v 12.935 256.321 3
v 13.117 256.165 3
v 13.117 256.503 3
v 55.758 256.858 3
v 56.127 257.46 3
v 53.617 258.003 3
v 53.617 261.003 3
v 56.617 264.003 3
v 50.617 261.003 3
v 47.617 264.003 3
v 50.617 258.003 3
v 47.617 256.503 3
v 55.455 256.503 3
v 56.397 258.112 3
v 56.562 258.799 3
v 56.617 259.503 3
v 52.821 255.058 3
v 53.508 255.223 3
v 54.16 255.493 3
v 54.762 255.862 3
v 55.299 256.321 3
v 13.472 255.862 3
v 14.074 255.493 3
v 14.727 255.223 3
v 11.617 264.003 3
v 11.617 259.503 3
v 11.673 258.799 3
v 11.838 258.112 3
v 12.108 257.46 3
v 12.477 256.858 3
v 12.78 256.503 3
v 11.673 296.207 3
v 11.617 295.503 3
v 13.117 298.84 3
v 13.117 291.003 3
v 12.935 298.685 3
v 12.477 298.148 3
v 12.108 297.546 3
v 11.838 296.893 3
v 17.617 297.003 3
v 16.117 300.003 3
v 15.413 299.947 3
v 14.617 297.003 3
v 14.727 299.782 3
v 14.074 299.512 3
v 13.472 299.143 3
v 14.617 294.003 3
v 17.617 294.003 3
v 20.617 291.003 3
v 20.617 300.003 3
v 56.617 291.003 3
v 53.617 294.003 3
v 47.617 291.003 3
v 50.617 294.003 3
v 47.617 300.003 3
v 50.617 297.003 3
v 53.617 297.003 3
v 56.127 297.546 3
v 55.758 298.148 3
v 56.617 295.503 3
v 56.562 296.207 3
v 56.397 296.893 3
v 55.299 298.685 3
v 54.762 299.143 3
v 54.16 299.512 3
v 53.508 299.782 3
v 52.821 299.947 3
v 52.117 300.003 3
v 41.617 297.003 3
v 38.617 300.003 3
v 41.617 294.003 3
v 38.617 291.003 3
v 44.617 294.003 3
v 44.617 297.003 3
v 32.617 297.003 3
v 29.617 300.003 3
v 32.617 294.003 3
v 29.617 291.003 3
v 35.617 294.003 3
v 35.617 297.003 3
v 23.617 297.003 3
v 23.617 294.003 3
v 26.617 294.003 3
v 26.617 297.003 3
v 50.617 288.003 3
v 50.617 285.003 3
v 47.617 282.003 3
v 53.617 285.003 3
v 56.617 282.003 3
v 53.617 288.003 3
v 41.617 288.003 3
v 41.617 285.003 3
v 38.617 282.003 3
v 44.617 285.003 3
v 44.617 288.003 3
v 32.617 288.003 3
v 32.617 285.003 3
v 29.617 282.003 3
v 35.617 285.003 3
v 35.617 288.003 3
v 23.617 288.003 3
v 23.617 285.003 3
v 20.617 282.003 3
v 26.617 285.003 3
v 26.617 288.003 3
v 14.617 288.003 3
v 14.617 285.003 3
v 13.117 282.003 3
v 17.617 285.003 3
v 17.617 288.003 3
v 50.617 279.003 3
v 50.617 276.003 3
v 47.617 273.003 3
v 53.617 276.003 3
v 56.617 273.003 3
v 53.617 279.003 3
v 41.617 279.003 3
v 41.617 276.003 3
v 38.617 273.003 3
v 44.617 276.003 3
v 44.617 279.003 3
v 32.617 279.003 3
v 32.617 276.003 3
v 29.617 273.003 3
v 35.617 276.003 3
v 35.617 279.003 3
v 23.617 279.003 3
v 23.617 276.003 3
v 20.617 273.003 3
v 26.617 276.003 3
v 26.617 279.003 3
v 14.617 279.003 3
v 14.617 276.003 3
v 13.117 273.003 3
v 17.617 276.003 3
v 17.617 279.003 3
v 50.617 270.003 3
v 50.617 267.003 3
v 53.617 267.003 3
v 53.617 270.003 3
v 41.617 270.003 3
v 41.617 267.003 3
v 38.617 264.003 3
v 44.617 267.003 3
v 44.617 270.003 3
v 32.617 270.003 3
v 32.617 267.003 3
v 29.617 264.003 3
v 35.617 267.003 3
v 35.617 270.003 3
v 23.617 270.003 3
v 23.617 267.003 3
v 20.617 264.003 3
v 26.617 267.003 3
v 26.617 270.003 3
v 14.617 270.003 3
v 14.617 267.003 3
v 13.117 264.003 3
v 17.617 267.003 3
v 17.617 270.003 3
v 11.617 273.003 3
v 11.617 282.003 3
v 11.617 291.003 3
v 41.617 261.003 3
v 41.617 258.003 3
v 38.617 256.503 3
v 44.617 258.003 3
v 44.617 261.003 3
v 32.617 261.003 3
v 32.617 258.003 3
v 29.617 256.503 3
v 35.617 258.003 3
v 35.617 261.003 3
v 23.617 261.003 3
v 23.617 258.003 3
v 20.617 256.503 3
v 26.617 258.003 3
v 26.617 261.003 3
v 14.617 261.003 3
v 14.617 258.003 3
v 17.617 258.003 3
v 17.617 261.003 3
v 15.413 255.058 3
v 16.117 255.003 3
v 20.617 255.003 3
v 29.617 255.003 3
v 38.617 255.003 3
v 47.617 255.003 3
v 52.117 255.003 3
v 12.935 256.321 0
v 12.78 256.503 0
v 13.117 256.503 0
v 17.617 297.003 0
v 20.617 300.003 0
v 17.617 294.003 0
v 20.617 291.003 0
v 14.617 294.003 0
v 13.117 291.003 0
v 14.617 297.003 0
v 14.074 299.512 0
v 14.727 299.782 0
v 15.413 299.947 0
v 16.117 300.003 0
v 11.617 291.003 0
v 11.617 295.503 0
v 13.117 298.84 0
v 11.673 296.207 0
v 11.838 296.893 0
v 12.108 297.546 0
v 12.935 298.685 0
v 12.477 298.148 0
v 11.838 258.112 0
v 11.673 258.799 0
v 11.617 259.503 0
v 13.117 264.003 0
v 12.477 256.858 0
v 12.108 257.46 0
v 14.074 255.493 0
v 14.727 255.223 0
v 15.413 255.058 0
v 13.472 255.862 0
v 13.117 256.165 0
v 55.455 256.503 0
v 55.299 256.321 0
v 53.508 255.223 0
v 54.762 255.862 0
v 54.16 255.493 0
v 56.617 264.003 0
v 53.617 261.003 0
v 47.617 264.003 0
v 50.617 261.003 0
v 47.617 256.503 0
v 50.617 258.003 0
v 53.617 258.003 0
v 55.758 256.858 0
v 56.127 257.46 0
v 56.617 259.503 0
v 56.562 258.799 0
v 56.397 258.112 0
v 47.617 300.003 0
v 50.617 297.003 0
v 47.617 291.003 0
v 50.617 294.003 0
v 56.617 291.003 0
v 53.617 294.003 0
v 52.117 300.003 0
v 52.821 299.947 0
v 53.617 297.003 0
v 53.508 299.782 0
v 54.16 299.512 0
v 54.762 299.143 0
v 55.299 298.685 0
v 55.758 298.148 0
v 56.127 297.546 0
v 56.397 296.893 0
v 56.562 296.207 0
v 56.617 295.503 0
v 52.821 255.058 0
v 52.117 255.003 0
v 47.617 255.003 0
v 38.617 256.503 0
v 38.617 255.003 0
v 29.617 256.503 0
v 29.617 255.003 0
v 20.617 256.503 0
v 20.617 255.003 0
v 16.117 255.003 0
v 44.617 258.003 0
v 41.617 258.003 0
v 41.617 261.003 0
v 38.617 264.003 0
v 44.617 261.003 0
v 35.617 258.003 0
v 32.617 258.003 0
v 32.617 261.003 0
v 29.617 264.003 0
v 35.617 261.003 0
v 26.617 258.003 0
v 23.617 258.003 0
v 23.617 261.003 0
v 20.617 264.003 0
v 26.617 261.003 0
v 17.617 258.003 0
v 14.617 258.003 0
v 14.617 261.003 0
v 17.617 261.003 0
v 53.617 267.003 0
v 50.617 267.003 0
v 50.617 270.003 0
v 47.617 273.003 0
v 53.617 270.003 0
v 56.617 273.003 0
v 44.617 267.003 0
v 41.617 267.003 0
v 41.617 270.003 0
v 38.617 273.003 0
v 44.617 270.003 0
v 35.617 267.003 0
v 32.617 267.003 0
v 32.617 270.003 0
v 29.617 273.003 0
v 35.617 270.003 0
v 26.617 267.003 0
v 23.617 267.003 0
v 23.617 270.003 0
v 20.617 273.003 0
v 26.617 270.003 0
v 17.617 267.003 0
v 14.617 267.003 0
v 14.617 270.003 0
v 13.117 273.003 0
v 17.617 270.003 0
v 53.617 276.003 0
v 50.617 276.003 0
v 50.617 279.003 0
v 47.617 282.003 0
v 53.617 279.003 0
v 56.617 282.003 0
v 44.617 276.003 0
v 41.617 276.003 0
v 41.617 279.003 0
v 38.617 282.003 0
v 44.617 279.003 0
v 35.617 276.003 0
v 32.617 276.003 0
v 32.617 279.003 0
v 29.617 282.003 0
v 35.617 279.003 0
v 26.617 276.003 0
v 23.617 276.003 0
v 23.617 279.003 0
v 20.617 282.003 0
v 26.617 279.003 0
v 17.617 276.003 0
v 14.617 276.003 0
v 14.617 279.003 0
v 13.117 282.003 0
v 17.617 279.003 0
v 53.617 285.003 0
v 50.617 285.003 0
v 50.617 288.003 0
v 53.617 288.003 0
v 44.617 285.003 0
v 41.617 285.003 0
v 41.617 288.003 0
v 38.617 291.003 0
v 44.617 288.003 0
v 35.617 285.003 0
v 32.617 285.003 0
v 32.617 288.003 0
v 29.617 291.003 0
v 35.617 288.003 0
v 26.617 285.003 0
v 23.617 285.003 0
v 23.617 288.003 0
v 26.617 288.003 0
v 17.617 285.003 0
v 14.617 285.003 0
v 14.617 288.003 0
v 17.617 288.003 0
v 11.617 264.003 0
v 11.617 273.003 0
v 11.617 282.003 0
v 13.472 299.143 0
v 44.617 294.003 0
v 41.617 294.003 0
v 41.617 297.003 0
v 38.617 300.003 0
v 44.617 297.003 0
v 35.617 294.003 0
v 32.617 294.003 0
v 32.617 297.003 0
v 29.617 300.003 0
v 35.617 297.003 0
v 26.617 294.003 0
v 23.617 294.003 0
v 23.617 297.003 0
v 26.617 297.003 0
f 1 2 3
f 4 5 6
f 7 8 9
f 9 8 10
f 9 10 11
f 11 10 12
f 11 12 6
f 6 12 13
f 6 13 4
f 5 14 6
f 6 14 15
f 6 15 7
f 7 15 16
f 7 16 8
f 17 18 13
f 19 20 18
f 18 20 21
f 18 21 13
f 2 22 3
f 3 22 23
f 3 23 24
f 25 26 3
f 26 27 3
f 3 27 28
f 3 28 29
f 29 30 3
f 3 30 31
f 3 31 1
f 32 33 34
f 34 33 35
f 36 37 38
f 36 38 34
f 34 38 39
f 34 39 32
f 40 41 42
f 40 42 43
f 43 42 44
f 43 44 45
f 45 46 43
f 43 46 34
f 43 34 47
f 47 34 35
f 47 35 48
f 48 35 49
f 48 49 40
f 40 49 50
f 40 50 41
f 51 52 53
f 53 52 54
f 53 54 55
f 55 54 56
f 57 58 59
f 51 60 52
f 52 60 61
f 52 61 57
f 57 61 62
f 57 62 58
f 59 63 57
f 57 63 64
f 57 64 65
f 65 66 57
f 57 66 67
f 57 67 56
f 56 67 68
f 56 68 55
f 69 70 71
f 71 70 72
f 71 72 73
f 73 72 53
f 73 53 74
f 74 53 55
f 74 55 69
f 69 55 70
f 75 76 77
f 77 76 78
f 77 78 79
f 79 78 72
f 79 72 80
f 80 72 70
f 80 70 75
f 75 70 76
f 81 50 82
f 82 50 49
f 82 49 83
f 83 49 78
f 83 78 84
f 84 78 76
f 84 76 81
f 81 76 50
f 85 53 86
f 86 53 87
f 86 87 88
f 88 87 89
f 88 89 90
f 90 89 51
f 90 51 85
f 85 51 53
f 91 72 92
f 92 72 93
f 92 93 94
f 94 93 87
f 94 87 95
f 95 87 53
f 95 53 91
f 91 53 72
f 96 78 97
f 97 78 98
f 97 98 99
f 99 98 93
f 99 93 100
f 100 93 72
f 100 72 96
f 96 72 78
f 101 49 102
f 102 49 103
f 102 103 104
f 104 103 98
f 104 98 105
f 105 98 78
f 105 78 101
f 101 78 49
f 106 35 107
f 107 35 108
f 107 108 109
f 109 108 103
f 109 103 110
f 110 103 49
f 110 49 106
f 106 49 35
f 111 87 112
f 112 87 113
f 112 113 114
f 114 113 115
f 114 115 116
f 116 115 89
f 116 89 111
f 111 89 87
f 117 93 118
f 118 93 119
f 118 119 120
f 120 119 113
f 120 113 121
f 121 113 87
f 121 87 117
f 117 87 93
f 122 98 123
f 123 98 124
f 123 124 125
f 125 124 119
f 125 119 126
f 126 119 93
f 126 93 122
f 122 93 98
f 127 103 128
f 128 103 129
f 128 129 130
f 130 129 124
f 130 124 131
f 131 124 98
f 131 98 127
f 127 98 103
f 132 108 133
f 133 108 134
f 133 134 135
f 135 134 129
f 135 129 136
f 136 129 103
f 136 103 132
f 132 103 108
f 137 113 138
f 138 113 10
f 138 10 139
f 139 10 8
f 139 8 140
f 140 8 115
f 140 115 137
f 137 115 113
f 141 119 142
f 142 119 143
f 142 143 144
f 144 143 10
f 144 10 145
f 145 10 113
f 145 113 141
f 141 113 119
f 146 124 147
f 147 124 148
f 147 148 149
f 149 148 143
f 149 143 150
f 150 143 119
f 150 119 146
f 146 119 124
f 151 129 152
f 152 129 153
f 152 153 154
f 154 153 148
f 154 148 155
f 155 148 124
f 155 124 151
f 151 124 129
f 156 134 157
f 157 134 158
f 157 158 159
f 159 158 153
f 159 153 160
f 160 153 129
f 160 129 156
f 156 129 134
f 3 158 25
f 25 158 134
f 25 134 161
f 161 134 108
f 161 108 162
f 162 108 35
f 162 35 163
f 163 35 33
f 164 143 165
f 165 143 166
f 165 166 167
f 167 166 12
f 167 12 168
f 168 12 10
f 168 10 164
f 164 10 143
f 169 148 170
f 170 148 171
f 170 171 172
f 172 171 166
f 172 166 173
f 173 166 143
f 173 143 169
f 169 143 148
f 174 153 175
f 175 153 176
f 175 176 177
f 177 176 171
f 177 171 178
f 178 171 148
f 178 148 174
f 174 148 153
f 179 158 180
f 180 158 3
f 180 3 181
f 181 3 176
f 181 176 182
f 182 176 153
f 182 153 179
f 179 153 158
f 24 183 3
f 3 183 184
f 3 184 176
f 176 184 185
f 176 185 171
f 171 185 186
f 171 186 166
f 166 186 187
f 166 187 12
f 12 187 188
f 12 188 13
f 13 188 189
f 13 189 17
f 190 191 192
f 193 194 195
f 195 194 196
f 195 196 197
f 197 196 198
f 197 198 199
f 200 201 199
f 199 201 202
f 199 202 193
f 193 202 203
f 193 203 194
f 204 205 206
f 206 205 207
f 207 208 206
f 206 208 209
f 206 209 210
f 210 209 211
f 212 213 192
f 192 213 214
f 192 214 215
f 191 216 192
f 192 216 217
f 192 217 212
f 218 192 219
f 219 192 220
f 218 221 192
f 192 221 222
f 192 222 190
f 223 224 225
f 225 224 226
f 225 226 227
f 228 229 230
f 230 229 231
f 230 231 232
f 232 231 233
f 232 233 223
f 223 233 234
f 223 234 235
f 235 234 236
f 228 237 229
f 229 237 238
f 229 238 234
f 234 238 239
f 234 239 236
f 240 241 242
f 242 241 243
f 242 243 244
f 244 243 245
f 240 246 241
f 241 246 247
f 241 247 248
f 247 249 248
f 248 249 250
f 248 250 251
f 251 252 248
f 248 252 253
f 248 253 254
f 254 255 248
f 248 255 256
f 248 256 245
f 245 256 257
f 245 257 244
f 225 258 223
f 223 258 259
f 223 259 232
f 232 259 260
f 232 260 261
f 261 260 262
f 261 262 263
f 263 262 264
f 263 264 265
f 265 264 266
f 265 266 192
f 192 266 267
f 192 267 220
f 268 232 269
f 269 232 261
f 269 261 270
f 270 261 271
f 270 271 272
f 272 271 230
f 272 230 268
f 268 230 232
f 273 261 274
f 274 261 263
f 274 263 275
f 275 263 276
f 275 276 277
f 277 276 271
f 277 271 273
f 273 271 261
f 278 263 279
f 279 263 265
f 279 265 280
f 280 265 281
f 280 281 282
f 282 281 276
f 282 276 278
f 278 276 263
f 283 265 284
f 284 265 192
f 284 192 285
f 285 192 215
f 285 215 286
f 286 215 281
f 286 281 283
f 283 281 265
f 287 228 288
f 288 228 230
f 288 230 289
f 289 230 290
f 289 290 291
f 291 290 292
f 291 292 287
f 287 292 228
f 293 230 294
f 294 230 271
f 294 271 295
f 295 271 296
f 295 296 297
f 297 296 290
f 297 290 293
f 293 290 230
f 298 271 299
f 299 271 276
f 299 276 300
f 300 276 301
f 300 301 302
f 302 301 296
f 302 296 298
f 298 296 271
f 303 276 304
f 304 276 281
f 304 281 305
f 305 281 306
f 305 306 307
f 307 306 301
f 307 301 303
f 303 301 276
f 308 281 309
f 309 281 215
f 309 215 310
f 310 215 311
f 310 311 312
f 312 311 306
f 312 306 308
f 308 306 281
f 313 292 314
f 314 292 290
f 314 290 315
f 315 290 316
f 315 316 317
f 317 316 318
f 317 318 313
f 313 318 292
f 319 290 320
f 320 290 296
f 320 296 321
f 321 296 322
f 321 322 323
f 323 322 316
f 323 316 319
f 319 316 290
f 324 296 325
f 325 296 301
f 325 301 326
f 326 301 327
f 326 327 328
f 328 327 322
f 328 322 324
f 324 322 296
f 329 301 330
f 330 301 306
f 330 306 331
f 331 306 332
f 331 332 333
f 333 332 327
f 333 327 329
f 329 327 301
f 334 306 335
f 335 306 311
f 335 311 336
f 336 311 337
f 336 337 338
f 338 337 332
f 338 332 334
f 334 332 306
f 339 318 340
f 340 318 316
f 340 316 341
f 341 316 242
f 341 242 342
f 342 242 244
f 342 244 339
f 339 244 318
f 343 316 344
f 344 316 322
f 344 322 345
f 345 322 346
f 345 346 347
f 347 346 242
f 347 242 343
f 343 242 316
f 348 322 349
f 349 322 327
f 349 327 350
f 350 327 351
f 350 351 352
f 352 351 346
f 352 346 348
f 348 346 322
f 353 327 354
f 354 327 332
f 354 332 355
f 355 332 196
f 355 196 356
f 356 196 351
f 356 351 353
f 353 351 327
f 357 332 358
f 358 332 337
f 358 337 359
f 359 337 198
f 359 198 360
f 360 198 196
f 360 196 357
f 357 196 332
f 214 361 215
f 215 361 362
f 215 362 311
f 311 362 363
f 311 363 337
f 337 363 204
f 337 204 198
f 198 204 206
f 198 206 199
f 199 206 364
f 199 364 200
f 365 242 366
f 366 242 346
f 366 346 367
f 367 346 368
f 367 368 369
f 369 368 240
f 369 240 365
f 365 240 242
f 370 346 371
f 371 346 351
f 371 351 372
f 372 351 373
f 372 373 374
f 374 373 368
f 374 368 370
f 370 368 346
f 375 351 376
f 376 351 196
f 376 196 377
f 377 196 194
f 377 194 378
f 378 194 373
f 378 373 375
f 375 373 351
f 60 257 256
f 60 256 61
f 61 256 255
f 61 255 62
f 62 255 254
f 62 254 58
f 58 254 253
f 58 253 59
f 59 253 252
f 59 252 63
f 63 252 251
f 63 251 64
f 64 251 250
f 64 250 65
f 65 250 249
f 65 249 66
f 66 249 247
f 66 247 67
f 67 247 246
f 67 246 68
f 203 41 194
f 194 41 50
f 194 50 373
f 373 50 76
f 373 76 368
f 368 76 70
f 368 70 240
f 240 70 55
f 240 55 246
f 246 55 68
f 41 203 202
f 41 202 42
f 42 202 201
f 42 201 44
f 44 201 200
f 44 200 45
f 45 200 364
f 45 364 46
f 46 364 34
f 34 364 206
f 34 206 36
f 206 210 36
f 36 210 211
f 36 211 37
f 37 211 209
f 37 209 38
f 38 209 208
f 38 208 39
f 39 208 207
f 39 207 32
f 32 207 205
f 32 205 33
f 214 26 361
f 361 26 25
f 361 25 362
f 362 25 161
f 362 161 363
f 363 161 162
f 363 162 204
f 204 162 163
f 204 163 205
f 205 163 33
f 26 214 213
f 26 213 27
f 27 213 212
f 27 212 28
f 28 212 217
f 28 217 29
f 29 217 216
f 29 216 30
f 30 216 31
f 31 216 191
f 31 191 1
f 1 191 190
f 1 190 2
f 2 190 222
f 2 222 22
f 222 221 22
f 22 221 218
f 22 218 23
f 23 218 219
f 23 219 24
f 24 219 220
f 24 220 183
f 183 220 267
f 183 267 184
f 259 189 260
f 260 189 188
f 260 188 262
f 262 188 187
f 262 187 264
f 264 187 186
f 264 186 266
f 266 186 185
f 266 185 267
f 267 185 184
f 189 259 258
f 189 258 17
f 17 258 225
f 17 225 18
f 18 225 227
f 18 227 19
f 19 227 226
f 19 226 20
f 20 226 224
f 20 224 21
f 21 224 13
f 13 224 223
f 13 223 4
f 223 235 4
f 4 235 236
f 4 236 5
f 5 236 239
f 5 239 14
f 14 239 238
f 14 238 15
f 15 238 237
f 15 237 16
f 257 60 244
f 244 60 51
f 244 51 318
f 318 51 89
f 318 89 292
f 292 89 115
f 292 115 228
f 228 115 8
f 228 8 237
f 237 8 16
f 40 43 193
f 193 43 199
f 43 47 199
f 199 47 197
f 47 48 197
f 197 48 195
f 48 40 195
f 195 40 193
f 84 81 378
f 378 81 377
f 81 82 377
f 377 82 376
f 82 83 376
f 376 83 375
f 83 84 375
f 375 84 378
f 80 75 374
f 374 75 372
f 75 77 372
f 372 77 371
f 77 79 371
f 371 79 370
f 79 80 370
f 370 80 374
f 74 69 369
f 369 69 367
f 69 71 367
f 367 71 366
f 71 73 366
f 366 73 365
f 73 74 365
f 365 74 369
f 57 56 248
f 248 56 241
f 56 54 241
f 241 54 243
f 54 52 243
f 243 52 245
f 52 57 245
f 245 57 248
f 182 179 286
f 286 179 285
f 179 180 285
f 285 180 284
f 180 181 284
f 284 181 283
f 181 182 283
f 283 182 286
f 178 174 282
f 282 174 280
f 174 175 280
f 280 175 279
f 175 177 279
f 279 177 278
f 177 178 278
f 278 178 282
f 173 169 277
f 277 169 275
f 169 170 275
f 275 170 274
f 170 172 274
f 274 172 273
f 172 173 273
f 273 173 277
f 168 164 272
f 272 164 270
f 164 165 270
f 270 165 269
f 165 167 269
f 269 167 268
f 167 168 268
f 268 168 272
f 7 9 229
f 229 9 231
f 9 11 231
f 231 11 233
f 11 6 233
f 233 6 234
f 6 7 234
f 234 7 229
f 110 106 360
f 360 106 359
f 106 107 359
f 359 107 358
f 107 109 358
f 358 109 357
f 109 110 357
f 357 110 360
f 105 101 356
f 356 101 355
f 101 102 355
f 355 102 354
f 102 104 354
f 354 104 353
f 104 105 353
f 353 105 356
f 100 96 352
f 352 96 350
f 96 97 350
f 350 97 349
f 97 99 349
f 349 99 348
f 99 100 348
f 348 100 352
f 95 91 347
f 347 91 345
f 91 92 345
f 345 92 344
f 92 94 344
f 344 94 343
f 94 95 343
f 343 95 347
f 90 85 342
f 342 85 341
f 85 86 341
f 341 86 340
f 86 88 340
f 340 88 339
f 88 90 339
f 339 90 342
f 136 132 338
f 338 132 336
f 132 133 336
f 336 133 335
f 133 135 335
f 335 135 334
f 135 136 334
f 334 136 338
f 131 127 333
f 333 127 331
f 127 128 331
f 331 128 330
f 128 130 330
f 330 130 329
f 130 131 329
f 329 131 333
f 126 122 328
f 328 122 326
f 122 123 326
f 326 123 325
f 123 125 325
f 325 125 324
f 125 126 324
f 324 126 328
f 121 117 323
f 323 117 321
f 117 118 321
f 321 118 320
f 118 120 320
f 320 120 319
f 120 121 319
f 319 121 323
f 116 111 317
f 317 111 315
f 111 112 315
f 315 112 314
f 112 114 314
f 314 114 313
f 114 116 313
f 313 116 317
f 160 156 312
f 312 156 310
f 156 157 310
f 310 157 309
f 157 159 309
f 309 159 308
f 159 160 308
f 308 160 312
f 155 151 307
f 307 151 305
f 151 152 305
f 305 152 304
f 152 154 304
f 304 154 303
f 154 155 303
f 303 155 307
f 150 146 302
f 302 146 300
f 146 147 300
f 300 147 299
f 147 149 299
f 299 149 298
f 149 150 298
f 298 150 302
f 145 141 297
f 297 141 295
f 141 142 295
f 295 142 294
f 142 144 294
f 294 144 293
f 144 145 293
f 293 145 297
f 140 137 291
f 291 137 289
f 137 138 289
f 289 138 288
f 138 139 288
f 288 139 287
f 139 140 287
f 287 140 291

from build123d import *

# Parameters (mm, degrees)
MODEL_W                 = 3
MODEL_H                 = 3
SALIENTE_EXTRUIR1_DEPTH = 3


with BuildPart() as part:
    # Model → Saliente-Extruir1 (new body)
    with BuildSketch(Plane.XY):
        with BuildLine():
            Line((16.117442786, 300.002712349), (52.117442786, 300.002712349))
            ThreePointArc((52.117442786, 300.002712349), (55.299423301, 298.684692865), (56.617442786, 295.502712349))
            Line((56.617442786, 295.502712349), (56.617442786, 259.502712349))
            ThreePointArc((56.617442786, 259.502712349), (55.299423301, 256.320731834), (52.117442786, 255.002712349))
            Line((52.117442786, 255.002712349), (16.117442786, 255.002712349))
            ThreePointArc((16.117442786, 255.002712349), (12.935462271, 256.320731834), (11.617442786, 259.502712349))
            Line((11.617442786, 259.502712349), (11.617442786, 295.502712349))
            ThreePointArc((11.617442786, 295.502712349), (12.935462271, 298.684692865), (16.117442786, 300.002712349))
        make_face()
        with Locations((16.117442786, 295.502712349)):
            Rectangle(MODEL_W, MODEL_H, mode=Mode.SUBTRACT)
        with Locations((25.117442786, 295.502712349)):
            Rectangle(MODEL_W, MODEL_H, mode=Mode.SUBTRACT)
        with Locations((34.117442786, 295.502712349)):
            Rectangle(MODEL_W, MODEL_H, mode=Mode.SUBTRACT)
        with Locations((43.117442786, 295.502712349)):
            Rectangle(MODEL_W, MODEL_H, mode=Mode.SUBTRACT)
        with Locations((52.117442786, 295.502712349)):
            Rectangle(MODEL_W, MODEL_H, mode=Mode.SUBTRACT)
        with Locations((16.117442786, 259.502712349)):
            Rectangle(MODEL_W, MODEL_H, mode=Mode.SUBTRACT)
        with Locations((25.117442786, 259.502712349)):
            Rectangle(MODEL_W, MODEL_H, mode=Mode.SUBTRACT)
        with Locations((34.117442786, 259.502712349)):
            Rectangle(MODEL_W, MODEL_H, mode=Mode.SUBTRACT)
        with Locations((43.117442786, 259.502712349)):
            Rectangle(MODEL_W, MODEL_H, mode=Mode.SUBTRACT)
        with Locations((52.117442786, 259.502712349)):
            Rectangle(MODEL_W, MODEL_H, mode=Mode.SUBTRACT)
        with Locations((16.117442786, 286.502712349)):
            Rectangle(MODEL_W, MODEL_H, mode=Mode.SUBTRACT)
        with Locations((25.117442786, 286.502712349)):
            Rectangle(MODEL_W, MODEL_H, mode=Mode.SUBTRACT)
        with Locations((34.117442786, 286.502712349)):
            Rectangle(MODEL_W, MODEL_H, mode=Mode.SUBTRACT)
        with Locations((43.117442786, 286.502712349)):
            Rectangle(MODEL_W, MODEL_H, mode=Mode.SUBTRACT)
        with Locations((52.117442786, 286.502712349)):
            Rectangle(MODEL_W, MODEL_H, mode=Mode.SUBTRACT)
        with Locations((16.117442786, 277.502712349)):
            Rectangle(MODEL_W, MODEL_H, mode=Mode.SUBTRACT)
        with Locations((25.117442786, 277.502712349)):
            Rectangle(MODEL_W, MODEL_H, mode=Mode.SUBTRACT)
        with Locations((34.117442786, 277.502712349)):
            Rectangle(MODEL_W, MODEL_H, mode=Mode.SUBTRACT)
        with Locations((43.117442786, 277.502712349)):
            Rectangle(MODEL_W, MODEL_H, mode=Mode.SUBTRACT)
        with Locations((52.117442786, 277.502712349)):
            Rectangle(MODEL_W, MODEL_H, mode=Mode.SUBTRACT)
        with Locations((16.117442786, 268.502712349)):
            Rectangle(MODEL_W, MODEL_H, mode=Mode.SUBTRACT)
        with Locations((25.117442786, 268.502712349)):
            Rectangle(MODEL_W, MODEL_H, mode=Mode.SUBTRACT)
        with Locations((34.117442786, 268.502712349)):
            Rectangle(MODEL_W, MODEL_H, mode=Mode.SUBTRACT)
        with Locations((43.117442786, 268.502712349)):
            Rectangle(MODEL_W, MODEL_H, mode=Mode.SUBTRACT)
        with Locations((52.117442786, 268.502712349)):
            Rectangle(MODEL_W, MODEL_H, mode=Mode.SUBTRACT)
    extrude(amount=SALIENTE_EXTRUIR1_DEPTH)


solid = part.part
